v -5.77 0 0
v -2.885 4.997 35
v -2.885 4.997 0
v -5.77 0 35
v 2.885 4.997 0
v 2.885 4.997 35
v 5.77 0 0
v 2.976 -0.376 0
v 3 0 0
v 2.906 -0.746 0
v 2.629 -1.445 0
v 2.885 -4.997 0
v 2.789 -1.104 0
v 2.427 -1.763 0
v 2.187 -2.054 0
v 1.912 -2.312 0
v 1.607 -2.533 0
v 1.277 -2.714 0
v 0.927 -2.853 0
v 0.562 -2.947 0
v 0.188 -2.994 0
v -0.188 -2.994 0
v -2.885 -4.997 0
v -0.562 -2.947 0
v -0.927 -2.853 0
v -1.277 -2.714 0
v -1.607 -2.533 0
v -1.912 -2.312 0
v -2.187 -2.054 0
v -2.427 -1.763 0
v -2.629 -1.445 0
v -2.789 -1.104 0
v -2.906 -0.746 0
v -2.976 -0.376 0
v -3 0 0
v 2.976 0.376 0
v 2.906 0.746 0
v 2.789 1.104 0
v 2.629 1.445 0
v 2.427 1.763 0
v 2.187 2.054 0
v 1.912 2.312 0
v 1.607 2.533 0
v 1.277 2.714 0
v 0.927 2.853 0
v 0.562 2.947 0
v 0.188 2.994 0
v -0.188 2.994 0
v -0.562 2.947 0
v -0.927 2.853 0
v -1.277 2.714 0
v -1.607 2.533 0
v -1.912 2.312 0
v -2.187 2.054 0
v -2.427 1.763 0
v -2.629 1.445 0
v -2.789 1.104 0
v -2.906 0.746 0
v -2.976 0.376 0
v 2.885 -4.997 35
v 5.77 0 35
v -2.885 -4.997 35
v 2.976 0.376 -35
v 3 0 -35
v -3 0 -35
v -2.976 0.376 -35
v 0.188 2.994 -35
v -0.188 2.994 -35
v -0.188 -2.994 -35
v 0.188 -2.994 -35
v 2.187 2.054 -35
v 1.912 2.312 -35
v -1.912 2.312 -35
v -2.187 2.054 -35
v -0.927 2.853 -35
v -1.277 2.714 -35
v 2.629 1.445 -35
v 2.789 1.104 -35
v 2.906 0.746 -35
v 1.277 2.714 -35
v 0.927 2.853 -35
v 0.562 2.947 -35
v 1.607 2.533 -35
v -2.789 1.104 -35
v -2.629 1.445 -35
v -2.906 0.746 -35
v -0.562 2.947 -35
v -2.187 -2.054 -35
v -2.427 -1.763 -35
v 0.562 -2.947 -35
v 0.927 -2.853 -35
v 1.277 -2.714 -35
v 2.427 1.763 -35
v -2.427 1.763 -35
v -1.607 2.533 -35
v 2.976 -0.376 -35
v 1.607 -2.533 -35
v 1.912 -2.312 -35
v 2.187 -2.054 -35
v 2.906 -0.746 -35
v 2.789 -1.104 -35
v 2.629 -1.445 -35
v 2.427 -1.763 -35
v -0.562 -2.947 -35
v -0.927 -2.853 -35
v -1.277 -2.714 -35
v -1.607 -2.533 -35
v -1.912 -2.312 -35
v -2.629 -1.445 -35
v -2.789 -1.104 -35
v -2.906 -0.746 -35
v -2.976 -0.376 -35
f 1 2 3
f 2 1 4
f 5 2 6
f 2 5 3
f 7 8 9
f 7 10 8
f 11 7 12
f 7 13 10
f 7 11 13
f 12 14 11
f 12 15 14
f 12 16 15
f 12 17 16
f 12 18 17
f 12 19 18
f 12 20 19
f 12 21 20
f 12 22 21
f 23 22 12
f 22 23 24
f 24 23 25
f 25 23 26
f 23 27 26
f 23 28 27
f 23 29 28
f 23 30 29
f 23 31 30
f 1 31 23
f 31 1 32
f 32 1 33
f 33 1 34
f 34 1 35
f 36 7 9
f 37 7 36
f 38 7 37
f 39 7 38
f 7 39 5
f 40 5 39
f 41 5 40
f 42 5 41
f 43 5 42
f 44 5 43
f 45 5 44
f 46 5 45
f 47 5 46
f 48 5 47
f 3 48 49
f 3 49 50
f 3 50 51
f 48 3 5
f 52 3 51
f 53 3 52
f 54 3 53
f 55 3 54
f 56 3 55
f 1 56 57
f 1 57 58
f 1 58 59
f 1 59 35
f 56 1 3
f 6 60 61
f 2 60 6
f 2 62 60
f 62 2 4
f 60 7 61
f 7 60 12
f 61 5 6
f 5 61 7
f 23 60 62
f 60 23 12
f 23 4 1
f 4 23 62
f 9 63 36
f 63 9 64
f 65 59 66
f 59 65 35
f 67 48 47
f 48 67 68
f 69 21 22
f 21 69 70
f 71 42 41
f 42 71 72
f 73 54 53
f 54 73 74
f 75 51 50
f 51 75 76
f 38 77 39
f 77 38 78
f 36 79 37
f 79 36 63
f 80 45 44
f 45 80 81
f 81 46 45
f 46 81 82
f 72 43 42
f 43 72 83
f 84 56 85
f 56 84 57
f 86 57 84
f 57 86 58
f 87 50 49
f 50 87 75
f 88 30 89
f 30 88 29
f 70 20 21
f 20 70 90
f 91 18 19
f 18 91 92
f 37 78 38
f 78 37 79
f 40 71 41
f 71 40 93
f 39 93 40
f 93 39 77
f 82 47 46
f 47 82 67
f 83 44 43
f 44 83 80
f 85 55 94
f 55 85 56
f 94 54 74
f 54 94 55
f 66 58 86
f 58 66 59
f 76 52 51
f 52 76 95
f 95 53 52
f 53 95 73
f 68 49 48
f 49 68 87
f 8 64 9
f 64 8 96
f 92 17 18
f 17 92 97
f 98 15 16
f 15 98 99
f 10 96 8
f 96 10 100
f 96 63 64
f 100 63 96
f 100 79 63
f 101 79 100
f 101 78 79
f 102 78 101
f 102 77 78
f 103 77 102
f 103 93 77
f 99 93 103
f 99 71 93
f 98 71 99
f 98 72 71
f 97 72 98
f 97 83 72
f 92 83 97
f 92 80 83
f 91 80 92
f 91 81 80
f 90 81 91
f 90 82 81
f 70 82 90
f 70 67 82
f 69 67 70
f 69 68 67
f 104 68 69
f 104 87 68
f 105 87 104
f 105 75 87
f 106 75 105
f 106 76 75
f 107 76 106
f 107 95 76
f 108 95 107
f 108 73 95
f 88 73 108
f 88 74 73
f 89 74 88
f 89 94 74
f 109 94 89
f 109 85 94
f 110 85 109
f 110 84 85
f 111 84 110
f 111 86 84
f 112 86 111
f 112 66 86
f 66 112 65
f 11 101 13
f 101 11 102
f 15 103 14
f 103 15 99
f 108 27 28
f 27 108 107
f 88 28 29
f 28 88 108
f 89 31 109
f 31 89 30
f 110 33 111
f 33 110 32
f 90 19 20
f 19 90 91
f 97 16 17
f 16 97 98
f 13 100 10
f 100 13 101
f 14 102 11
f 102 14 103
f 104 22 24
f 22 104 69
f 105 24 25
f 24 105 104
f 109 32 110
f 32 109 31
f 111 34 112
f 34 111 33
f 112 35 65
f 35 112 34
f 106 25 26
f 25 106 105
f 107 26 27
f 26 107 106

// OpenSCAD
$fn = 50;


difference() {
	union() {
		linear_extrude(height = 35) {
			polygon(points = [[5.7700000000, 0.0000000000], [2.8850000000, 4.9969665798], [-2.8850000000, 4.9969665798], [-5.7700000000, 0.0000000000], [-2.8850000000, -4.9969665798], [2.8850000000, -4.9969665798]]);
		}
		translate(v = [0, 0, -35]) {
			cylinder(h = 35, r = 3.0000000000);
		}
	}
	union();
}
